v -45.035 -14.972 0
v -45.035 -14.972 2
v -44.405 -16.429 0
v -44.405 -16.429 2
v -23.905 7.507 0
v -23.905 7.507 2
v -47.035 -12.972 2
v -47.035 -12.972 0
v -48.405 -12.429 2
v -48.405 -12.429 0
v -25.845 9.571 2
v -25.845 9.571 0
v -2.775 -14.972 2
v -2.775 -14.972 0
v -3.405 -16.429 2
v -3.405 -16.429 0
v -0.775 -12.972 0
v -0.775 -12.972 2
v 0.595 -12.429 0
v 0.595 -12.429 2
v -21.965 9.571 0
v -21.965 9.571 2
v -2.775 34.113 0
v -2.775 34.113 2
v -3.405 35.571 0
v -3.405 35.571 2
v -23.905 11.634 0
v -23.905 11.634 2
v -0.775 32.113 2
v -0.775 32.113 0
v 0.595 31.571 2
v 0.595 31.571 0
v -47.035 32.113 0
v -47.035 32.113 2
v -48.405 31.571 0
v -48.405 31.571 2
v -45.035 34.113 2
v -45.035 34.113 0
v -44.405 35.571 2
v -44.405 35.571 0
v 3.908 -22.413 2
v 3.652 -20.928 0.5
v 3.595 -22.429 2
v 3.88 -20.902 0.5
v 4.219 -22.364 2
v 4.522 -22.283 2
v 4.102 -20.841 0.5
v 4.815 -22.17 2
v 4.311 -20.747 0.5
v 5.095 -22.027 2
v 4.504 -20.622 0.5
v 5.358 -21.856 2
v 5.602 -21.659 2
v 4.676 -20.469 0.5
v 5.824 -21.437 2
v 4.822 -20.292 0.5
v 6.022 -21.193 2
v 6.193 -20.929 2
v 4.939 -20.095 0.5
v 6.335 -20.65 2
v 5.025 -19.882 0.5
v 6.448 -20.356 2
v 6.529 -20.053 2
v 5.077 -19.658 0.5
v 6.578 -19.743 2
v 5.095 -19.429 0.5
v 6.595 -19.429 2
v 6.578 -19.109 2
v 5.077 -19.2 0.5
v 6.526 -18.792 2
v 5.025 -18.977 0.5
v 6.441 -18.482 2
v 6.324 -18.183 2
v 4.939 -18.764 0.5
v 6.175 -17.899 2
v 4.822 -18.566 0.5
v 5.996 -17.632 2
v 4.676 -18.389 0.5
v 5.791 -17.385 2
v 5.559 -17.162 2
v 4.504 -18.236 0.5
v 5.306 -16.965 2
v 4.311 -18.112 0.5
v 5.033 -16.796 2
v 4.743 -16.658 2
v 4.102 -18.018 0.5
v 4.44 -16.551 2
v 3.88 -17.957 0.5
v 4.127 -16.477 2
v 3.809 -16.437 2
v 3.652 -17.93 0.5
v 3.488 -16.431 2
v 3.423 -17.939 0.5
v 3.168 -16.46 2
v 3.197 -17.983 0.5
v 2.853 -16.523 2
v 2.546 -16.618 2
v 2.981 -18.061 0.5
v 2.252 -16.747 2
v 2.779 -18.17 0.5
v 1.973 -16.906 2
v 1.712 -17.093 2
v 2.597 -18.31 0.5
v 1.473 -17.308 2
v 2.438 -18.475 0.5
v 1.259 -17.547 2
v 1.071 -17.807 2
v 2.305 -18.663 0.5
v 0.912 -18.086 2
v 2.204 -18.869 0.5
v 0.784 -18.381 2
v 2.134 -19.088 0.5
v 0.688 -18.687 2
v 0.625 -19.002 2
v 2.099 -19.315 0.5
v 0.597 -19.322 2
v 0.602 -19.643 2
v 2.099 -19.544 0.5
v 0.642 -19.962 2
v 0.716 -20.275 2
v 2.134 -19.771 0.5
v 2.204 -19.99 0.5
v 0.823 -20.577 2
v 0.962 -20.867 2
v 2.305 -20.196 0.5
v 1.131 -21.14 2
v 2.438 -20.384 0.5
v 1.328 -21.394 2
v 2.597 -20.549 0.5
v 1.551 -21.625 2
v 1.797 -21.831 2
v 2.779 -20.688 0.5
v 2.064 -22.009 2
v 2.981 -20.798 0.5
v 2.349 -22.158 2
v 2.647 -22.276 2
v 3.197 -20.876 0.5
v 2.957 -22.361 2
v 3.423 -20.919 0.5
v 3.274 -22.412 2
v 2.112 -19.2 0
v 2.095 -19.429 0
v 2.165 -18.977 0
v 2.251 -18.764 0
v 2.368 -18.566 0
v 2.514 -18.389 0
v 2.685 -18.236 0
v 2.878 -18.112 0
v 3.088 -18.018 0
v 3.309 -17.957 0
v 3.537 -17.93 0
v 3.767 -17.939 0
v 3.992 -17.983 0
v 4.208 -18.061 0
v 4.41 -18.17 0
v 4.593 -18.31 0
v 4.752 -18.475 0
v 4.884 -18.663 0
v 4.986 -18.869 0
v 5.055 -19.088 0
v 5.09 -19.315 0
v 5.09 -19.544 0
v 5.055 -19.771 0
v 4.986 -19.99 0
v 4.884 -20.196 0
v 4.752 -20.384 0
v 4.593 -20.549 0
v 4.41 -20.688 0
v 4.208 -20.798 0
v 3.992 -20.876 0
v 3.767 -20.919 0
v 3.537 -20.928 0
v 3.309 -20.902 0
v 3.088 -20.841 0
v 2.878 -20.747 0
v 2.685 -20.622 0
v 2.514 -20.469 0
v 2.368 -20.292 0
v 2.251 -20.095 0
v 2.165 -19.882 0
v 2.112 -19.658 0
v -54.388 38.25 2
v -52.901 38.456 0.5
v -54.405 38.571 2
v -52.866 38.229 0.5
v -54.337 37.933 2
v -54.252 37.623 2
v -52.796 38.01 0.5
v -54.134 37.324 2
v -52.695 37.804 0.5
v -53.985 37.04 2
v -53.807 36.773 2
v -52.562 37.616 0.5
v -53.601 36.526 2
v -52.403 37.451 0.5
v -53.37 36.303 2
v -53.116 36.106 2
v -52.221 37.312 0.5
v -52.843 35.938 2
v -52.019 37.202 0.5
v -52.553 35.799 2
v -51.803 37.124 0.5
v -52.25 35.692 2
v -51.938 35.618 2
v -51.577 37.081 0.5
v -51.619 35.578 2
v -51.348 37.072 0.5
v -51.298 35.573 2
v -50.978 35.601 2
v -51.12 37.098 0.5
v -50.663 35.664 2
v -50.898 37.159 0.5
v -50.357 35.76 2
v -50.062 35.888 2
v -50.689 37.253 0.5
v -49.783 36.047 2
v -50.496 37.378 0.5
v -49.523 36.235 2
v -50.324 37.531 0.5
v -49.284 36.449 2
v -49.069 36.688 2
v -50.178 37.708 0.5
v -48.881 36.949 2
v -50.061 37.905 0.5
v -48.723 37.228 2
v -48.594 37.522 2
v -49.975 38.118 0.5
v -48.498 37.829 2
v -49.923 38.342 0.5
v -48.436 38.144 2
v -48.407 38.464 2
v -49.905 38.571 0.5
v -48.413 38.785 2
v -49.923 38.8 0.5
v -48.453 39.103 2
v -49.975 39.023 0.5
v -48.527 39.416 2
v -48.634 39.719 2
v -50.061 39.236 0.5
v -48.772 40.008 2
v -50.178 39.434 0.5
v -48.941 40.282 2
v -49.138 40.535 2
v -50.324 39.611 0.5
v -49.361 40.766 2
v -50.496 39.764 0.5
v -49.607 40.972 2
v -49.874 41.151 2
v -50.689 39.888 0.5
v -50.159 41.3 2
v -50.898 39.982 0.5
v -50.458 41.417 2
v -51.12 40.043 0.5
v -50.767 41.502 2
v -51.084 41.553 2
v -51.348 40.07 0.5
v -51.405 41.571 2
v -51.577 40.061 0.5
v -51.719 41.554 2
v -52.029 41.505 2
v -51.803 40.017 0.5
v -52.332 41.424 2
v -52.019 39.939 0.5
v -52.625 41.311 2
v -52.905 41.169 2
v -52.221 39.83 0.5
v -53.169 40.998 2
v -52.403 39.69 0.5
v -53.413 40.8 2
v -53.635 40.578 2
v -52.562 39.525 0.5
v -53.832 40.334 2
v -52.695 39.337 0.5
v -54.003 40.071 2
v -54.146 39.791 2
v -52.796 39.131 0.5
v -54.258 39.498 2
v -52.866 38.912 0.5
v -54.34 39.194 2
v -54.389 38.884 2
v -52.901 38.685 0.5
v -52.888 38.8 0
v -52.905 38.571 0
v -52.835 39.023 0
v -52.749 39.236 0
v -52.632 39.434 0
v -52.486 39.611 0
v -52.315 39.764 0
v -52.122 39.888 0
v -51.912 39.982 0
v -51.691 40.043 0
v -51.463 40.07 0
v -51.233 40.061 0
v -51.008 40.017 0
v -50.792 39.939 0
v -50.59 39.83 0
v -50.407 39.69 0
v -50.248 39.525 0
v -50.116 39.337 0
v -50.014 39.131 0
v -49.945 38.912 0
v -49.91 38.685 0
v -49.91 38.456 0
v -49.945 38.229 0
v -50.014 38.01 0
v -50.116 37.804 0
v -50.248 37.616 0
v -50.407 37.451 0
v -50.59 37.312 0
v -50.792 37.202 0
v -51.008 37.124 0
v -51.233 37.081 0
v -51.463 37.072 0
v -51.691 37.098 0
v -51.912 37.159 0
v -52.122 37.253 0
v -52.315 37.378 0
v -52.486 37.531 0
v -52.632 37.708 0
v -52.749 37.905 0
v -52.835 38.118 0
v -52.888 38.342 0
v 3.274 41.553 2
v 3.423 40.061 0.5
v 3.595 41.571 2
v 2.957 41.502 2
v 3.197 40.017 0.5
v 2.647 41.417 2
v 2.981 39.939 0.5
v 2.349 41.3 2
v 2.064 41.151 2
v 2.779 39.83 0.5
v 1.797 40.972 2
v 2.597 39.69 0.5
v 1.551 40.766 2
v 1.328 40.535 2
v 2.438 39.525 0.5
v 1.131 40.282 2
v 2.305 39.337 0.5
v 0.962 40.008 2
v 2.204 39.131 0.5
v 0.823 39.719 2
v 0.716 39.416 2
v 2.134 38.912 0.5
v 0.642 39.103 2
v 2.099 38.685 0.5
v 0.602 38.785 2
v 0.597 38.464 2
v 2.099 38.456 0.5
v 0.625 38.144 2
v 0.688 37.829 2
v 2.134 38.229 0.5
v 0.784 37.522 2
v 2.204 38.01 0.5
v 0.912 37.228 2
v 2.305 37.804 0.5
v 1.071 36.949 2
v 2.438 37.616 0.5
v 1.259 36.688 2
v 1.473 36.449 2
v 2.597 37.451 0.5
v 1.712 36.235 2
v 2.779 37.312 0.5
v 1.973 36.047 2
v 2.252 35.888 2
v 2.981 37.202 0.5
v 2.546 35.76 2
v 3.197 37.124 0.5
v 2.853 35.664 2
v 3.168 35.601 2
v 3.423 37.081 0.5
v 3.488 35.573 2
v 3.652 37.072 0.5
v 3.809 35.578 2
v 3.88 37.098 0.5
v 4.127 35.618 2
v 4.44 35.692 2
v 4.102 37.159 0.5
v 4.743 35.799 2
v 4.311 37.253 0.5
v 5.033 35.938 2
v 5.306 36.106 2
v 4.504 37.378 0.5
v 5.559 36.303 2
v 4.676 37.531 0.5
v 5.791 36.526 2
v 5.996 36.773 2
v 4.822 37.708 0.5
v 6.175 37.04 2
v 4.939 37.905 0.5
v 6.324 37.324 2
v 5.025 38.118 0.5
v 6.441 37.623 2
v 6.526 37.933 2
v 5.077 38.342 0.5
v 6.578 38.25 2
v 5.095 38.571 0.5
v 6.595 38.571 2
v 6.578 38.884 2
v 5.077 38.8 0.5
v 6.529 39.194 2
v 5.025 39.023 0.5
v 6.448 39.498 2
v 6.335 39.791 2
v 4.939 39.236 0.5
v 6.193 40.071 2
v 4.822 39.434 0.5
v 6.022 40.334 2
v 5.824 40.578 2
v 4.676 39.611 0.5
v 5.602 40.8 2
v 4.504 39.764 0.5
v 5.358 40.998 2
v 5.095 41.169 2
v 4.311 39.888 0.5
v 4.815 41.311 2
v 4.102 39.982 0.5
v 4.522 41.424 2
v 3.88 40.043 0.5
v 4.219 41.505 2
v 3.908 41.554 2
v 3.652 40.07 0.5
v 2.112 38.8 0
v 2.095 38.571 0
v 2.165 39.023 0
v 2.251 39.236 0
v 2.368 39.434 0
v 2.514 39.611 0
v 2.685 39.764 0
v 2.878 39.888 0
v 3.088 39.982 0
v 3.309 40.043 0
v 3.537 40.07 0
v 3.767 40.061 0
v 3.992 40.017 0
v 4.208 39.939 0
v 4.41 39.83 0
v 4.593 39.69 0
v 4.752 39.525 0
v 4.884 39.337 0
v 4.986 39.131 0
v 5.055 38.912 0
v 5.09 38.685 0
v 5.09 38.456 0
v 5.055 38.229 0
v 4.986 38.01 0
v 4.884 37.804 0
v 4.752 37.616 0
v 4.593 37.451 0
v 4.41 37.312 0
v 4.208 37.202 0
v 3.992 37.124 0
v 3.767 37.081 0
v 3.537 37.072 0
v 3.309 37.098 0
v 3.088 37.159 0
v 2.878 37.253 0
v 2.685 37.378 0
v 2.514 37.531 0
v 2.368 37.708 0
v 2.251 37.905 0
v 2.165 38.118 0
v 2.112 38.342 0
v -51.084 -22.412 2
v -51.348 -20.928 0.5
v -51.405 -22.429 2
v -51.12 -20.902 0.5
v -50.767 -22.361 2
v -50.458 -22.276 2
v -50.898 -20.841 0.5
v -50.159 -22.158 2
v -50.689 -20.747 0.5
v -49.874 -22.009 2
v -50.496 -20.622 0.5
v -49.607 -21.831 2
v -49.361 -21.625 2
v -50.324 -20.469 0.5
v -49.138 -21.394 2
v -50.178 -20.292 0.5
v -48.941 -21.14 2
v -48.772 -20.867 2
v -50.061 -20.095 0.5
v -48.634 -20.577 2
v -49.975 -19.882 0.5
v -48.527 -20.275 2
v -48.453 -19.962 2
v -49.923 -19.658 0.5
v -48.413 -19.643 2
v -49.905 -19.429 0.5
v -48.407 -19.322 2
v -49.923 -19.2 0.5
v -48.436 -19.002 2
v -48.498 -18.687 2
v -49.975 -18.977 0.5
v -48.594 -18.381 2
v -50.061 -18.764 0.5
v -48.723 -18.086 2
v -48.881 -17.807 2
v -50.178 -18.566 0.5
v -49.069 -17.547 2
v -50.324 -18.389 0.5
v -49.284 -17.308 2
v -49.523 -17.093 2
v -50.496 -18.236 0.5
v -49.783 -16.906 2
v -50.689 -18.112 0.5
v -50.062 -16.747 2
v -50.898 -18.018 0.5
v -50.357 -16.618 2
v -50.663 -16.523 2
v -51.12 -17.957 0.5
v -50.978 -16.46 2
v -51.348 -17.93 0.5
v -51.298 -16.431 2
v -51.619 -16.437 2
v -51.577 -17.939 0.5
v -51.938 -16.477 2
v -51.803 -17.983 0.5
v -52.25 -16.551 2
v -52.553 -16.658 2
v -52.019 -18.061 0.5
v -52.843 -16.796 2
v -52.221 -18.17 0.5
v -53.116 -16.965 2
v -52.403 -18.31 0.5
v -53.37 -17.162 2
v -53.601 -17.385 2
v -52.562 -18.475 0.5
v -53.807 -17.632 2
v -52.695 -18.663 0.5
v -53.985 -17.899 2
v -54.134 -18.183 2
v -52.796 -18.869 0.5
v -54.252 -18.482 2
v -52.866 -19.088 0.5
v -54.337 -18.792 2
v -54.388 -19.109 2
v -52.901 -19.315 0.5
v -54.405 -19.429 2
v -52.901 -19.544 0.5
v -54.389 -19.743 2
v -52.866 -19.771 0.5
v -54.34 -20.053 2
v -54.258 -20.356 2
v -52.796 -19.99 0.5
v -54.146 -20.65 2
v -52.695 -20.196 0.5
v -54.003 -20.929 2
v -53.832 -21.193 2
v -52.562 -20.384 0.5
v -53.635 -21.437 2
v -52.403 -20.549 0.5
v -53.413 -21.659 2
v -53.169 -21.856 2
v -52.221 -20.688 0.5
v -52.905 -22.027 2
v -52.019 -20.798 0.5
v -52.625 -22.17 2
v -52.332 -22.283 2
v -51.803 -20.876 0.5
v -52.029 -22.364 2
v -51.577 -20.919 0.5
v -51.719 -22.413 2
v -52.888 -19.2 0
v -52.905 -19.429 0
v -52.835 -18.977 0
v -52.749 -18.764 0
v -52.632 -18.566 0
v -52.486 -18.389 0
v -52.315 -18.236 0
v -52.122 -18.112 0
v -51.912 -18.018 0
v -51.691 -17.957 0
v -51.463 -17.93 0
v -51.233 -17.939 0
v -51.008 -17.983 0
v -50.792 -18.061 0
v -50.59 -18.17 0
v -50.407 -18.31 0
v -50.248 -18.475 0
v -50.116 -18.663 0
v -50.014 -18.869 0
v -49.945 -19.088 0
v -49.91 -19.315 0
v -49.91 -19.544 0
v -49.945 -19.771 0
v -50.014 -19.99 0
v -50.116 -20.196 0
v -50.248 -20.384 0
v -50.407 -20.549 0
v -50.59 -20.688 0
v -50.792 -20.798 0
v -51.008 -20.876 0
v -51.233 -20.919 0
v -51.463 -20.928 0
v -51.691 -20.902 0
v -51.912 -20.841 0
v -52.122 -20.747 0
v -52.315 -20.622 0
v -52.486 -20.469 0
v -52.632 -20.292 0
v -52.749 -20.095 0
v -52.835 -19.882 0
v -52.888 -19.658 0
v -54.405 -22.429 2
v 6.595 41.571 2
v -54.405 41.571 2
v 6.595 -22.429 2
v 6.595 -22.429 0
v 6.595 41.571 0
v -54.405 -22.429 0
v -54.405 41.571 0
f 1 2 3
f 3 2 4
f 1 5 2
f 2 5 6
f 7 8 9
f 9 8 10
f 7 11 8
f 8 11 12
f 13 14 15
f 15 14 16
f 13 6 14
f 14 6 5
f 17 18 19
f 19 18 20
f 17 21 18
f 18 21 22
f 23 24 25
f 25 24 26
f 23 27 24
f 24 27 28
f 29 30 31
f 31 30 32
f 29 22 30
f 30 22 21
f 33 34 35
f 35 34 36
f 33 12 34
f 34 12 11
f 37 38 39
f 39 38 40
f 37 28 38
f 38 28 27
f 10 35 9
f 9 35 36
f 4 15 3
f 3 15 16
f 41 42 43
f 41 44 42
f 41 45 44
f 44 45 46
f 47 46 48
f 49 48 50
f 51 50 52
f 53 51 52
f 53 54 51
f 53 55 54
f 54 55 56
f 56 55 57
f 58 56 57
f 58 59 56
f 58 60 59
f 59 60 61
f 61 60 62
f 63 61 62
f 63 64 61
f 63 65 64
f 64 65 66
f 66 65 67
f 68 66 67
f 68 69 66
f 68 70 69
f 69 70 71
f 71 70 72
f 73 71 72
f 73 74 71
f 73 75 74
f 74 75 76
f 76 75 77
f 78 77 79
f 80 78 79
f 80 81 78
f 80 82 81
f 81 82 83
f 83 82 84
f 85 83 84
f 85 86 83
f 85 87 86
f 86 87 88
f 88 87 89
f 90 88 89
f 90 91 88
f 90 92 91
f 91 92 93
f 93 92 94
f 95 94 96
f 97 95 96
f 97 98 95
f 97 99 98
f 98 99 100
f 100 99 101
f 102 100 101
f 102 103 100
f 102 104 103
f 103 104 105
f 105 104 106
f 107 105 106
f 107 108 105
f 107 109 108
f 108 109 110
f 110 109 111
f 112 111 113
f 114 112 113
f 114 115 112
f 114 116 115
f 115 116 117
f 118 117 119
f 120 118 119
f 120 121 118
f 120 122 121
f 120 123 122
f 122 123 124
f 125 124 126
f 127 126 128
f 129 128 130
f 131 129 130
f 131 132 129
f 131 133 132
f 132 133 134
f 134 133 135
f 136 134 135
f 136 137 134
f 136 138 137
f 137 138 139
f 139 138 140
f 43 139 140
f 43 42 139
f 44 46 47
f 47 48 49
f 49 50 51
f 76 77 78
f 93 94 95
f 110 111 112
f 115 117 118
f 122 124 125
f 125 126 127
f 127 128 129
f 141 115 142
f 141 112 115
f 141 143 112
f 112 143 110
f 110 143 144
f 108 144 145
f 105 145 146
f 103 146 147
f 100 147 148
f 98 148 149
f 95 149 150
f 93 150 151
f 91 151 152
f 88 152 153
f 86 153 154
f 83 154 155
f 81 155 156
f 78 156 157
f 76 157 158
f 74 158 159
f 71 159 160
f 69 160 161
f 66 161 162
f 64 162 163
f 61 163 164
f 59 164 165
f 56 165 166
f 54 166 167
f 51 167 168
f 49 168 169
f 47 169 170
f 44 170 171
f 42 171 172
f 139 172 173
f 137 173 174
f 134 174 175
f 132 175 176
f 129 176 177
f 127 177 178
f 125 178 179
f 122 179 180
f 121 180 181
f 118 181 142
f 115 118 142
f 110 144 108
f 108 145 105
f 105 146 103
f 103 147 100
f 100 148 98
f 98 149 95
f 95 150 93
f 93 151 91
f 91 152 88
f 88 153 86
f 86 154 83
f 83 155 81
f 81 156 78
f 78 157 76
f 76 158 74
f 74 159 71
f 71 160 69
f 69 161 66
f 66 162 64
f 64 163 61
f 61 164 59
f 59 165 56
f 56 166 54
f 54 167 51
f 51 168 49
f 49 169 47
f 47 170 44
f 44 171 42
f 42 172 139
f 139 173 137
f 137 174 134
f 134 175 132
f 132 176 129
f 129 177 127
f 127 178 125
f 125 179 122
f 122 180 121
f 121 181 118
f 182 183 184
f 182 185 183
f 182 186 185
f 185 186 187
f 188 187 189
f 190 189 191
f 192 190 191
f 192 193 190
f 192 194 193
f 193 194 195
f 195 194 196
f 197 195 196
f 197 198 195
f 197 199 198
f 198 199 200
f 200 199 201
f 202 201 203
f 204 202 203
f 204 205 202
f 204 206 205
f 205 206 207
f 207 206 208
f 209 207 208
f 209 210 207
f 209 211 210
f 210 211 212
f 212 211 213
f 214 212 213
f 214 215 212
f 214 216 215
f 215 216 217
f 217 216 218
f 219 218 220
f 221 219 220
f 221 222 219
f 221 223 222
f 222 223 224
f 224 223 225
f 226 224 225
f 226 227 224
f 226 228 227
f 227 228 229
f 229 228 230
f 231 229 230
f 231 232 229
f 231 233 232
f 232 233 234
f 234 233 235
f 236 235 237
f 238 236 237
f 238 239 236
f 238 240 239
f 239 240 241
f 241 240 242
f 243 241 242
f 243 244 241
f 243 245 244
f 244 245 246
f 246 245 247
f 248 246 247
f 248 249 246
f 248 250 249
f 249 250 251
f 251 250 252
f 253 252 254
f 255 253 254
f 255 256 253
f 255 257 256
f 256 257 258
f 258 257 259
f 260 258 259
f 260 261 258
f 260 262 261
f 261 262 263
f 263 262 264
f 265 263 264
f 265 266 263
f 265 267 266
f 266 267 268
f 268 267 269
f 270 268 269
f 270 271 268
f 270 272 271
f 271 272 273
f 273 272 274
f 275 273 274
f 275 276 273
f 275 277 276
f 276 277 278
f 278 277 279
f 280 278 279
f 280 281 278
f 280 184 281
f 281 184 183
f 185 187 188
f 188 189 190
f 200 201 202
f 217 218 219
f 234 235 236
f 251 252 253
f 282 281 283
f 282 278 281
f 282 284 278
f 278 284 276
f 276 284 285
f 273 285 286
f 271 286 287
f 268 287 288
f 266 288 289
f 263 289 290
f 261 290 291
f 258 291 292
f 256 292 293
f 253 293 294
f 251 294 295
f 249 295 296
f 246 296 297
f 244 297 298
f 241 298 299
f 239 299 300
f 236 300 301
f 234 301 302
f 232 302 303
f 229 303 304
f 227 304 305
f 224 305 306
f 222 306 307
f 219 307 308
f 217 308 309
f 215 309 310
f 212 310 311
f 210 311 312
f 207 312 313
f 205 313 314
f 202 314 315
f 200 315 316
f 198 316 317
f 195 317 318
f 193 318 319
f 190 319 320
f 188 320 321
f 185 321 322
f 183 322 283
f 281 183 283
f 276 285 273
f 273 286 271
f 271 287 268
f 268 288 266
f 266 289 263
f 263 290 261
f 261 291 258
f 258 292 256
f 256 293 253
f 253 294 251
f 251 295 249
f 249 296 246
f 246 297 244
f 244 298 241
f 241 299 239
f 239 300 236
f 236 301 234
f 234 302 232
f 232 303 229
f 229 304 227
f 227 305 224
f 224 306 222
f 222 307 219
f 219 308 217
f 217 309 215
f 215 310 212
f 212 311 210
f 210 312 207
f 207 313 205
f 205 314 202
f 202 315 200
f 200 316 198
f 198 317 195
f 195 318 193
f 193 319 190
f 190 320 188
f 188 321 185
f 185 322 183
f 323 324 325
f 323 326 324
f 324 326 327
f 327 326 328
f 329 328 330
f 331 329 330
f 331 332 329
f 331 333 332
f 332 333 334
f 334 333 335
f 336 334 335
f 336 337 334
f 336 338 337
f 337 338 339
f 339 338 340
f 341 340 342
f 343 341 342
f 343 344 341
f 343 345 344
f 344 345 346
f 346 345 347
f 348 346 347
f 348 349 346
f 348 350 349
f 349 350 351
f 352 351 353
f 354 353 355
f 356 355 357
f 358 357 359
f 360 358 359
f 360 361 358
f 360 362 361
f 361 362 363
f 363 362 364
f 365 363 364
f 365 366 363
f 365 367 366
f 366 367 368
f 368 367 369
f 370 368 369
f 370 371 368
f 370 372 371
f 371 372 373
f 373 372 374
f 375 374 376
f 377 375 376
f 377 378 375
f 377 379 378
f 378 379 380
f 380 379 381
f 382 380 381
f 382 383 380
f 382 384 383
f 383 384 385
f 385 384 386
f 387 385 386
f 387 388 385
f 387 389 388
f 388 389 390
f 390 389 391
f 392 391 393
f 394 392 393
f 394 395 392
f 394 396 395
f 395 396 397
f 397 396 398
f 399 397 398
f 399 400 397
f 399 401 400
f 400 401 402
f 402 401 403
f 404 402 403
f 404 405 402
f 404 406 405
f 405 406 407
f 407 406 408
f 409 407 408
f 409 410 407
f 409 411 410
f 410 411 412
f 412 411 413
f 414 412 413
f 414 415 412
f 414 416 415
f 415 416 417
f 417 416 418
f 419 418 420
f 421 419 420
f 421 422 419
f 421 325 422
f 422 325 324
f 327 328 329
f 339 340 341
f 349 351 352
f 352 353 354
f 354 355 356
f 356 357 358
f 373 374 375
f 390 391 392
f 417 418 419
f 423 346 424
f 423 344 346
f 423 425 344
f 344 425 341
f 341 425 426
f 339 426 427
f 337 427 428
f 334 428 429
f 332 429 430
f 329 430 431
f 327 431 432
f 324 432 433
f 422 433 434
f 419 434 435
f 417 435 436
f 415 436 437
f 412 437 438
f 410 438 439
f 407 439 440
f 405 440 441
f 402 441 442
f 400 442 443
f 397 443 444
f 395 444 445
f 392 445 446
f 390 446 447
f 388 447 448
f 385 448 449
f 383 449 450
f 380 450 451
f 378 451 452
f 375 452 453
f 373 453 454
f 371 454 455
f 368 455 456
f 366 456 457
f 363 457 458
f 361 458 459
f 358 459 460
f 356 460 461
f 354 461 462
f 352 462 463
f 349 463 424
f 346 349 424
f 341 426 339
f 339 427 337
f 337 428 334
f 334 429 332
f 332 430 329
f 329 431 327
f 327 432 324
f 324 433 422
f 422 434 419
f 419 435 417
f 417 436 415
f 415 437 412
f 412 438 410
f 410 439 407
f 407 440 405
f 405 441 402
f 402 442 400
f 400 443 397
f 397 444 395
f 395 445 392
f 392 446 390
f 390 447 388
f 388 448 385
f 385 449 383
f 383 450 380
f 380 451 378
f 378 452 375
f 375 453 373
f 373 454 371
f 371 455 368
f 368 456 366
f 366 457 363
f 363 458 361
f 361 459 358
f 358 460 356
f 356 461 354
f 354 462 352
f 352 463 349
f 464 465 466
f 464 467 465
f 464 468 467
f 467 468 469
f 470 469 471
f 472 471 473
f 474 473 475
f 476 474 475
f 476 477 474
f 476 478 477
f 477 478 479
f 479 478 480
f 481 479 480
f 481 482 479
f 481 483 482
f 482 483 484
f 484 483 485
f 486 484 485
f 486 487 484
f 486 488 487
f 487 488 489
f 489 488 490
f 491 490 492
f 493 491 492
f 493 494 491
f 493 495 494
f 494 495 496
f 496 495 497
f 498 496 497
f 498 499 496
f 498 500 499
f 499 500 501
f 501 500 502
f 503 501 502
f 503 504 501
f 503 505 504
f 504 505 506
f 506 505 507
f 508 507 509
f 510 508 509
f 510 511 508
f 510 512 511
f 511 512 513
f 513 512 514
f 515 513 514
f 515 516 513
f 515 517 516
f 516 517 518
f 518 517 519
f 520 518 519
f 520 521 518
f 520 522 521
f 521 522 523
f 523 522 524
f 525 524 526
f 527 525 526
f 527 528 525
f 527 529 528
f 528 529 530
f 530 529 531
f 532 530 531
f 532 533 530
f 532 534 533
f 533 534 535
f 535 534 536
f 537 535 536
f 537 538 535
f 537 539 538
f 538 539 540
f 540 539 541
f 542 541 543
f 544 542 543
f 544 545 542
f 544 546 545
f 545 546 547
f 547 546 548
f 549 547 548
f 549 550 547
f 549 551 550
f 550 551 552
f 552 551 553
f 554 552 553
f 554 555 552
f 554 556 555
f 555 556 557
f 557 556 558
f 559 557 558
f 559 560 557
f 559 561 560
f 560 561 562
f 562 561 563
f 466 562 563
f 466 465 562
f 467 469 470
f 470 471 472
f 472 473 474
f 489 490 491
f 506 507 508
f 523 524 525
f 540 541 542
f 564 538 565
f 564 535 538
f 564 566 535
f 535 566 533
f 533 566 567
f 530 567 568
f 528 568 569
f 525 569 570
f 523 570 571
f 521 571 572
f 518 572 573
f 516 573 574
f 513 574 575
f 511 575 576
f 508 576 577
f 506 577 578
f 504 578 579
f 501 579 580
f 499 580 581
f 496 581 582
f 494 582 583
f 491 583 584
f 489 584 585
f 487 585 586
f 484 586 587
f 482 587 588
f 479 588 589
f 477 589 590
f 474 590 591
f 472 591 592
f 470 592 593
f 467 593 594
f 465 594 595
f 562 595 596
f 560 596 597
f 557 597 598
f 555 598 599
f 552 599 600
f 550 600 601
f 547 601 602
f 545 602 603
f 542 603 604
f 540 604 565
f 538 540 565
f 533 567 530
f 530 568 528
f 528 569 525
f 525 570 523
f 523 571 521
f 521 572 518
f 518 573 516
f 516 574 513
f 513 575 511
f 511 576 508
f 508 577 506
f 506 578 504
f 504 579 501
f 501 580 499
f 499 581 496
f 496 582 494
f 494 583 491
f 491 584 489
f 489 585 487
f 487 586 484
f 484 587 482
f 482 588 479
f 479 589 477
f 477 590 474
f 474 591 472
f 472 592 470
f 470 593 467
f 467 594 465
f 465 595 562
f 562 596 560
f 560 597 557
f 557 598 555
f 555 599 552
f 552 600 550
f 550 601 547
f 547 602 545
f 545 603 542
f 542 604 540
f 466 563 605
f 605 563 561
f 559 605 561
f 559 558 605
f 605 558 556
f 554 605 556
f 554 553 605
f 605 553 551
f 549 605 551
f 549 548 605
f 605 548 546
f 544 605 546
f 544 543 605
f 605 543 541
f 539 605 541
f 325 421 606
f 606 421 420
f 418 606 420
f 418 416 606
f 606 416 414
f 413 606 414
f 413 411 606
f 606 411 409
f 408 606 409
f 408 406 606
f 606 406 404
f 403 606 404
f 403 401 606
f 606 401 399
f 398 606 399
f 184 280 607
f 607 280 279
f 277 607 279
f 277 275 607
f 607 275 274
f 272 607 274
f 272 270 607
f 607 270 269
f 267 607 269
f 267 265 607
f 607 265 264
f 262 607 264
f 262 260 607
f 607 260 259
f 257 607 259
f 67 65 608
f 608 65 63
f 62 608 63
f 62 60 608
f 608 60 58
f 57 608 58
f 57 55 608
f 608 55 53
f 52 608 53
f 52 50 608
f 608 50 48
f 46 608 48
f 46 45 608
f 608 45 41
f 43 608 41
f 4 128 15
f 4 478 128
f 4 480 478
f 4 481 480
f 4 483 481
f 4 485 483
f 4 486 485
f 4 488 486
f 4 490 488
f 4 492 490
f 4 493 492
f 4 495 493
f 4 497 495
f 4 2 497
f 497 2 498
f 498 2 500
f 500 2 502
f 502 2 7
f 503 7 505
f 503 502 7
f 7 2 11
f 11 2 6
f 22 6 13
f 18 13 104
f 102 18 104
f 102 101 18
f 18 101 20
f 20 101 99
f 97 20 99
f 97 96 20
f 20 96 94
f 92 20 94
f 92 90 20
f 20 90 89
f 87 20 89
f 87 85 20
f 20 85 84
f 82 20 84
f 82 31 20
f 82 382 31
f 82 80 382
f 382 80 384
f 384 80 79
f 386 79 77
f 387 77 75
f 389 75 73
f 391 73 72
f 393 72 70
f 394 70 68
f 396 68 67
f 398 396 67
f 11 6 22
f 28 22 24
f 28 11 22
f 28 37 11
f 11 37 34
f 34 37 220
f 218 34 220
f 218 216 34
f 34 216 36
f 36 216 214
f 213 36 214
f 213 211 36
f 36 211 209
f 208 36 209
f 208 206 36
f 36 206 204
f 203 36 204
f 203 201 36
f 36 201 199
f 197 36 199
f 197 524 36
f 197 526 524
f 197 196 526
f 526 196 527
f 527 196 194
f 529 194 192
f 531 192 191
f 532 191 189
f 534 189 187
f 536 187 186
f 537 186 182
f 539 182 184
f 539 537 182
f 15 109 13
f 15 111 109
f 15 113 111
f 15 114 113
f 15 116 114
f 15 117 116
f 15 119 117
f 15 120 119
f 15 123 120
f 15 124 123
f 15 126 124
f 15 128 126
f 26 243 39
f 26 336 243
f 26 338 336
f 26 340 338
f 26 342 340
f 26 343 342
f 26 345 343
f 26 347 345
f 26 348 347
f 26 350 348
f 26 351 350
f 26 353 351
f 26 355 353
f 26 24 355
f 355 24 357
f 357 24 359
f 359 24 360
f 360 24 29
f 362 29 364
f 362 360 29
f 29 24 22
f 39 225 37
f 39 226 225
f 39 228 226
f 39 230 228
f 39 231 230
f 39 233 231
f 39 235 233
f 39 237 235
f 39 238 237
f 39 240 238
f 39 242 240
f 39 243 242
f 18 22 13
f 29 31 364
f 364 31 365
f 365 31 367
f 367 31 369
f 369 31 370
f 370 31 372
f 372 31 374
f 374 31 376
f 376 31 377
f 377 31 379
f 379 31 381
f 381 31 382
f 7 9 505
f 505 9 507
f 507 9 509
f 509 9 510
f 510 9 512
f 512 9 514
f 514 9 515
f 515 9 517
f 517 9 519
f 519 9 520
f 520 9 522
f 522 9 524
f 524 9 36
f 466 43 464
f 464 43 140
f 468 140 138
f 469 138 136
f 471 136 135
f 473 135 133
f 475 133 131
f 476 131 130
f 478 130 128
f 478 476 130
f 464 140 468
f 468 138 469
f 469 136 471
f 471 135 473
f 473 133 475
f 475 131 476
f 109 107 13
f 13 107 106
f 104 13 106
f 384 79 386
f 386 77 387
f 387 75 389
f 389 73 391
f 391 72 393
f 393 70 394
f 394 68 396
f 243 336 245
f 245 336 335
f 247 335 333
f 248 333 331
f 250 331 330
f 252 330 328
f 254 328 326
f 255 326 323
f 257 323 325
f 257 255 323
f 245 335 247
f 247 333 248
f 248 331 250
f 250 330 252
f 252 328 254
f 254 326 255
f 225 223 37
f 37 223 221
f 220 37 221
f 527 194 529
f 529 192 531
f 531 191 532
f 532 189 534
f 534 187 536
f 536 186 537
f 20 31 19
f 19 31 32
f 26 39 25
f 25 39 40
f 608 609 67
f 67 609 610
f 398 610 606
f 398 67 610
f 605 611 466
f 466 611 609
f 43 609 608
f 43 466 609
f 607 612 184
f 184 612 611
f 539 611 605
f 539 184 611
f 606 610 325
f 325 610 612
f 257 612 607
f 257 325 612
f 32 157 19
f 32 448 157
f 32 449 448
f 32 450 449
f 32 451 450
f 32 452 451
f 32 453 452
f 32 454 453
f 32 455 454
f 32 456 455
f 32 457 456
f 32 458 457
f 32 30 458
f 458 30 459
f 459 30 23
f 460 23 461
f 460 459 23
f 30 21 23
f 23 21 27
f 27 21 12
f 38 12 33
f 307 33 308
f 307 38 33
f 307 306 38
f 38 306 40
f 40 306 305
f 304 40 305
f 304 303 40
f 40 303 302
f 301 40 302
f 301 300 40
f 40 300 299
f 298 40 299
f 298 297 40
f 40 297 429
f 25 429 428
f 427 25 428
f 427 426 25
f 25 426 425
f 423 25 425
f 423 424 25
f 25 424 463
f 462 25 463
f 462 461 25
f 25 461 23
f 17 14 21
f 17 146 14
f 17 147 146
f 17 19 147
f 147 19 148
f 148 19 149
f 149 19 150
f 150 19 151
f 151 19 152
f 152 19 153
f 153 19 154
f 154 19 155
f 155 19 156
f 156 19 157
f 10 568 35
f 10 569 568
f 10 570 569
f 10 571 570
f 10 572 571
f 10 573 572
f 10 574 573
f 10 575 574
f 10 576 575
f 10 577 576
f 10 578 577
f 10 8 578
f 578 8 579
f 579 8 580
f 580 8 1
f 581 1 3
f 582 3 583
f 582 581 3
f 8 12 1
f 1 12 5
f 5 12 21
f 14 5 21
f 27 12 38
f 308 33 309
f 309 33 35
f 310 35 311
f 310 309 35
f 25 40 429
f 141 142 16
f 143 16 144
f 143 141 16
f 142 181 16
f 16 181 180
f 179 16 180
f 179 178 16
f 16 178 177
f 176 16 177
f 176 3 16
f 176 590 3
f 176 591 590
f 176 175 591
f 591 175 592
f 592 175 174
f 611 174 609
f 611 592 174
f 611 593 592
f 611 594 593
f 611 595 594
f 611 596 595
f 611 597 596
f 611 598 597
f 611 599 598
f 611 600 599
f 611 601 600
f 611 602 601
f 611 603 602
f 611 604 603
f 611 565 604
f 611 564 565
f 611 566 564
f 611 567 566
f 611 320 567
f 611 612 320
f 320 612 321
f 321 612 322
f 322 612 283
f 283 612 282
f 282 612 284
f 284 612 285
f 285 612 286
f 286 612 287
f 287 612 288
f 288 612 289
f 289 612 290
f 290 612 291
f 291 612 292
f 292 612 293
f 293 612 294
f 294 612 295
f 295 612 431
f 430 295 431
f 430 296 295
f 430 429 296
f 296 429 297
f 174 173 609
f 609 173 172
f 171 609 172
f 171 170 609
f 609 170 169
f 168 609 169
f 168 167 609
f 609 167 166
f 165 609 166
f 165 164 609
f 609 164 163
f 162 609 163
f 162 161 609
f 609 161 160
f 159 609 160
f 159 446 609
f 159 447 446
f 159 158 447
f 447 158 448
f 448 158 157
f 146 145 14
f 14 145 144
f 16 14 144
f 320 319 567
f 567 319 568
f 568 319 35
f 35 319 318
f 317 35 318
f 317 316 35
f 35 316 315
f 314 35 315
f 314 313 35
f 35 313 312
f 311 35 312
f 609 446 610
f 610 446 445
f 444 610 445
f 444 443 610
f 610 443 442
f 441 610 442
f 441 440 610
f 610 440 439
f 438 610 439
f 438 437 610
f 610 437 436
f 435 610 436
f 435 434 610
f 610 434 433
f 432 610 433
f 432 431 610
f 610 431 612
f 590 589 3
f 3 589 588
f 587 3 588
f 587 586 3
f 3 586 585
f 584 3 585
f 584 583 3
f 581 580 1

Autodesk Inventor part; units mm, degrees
ref_plane "YZ Plane" through (0, 0, 0) normal (1, 0, 0) x (0, 1, 0)
ref_plane "XZ Plane" through (0, 0, 0) normal (0, 1, 0) x (-1, 0, 0)
ref_plane "XY Plane" through (0, 0, 0) normal (0, 0, 1) x (1, 0, 0)
sketch "Sketch1" plane through (0, 0, 0) normal (0, 0, 1) x (1, 0, 0)
  line L0 (-51.4052, 38.5707) -> (3.5948, 38.5707)
  line L1 (3.5948, 38.5707) -> (3.5948, -19.4293)
  line L2 (3.5948, -19.4293) -> (-51.4052, -19.4293)
  line L3 (-51.4052, -19.4293) -> (-51.4052, 38.5707)
  line L4 (-54.4052, 41.5707) -> (6.5948, 41.5707)
  line L5 (6.5948, 41.5707) -> (6.5948, -22.4293)
  line L6 (6.5948, -22.4293) -> (-54.4052, -22.4293)
  line L7 (-54.4052, -22.4293) -> (-54.4052, 41.5707)
  line L8 (-48.4052, 35.5707) -> (0.5948, 35.5707)
  line L9 (0.5948, 35.5707) -> (0.5948, -16.4293)
  line L10 (0.5948, -16.4293) -> (-48.4052, -16.4293)
  line L11 (-48.4052, -16.4293) -> (-48.4052, 35.5707)
  point P0 (0, 0)
  dimension "d0" = 55
  dimension "d1" = 58
  dimension "d2" = 3
  dimension "d3" = 3
  dimension "d4" = 3
  dimension "d5" = 3
  dimension "d6" = 3
  dimension "d7" = 3
  dimension "d8" = 3
  dimension "d9" = 3
extrude "Extrusion1" add sketch "Sketch1" along normal blind 2 contours L0 L1 L2 L3 | L4 L5 L6 L7
sketch "Sketch2" plane through (0, 0, 2) normal (0, 0, 1) x (1, 0, 0)
  line L0 (-54.4052, 41.5707) -> (-54.4052, -22.4293) projected
  line L1 (6.5948, 41.5707) -> (-54.4052, 41.5707) projected
  line L2 (6.5948, 41.5707) -> (6.5948, -22.4293) projected
  line L3 (-54.4052, -22.4293) -> (6.5948, -22.4293) projected
  point P0 (0, 0)
  point P1 (-51.4052, 38.5707)
  point P2 (3.5948, 38.5707)
  point P3 (3.5948, -19.4293)
  point P4 (-51.4052, -19.4293)
  dimension "d12" = 3
  dimension "d13" = 3
  dimension "d14" = 3
  dimension "d15" = 3
  dimension "d16" = 3
  dimension "d17" = 3
  dimension "d18" = 3
  dimension "d19" = 3
hole "Hole1" at (-51.4052, 38.5707, 2) at (3.5948, 38.5707, 2) at (3.5948, -19.4293, 2) at (-51.4052, -19.4293, 2) direction (0, 0, -1) diameter 3 depth 8 tip angle 118 countersink diameter 6 countersink angle 90
sketch "Sketch3" plane through (0, 0, 2) normal (0, 0, 1) x (1, 0, 0)
  line L0 (-48.4052, -16.4293) -> (-48.4052, 35.5707) projected
  line L1 (0.5948, 35.5707) -> (-48.4052, 35.5707) projected
  line L2 (0.5948, 35.5707) -> (0.5948, -16.4293) projected
  line L3 (-48.4052, -16.4293) -> (0.5948, -16.4293) projected
  line L4 (-48.4052, 33.5707) -> (-1.4052, -16.4293)
  line L5 (-1.4052, -16.4293) -> (0.5948, -16.4293)
  line L6 (0.5948, -16.4293) -> (0.5948, -14.4293)
  line L7 (0.5948, -14.4293) -> (-46.4052, 35.5707)
  line L8 (-48.4052, 35.5707) -> (-46.4052, 35.5707)
  line L9 (-48.4052, 35.5707) -> (-48.4052, 33.5707)
  line L10 (-48.4052, -14.4293) -> (-1.4052, 35.5707)
  line L11 (-1.4052, 35.5707) -> (0.5948, 35.5707)
  line L12 (0.5948, 33.5707) -> (-46.4052, -16.4293)
  line L13 (-46.4052, -16.4293) -> (-48.4052, -16.4293)
  line L14 (-48.4052, -16.4293) -> (-48.4052, -14.4293)
  point P0 (0, 0)
  point P1 (-46.4052, -16.4293)
  dimension "d27" = 2
  dimension "d28" = 2
  dimension "d29" = 2
  dimension "d30" = 2
  dimension "d31" = 2
  dimension "d32" = 2
  dimension "d33" = 2
  dimension "d34" = 2
extrude "Extrusion2" add sketch "Sketch3" against normal blind 2 contours L0 L10 L4 L12 L3 | L0 L1 L7 L10 L4 | L10 L7 L12 L4 | L4 L12 L7 L2 L3 | L10 L1 L2 L12 L7
chamfer "Chamfer1" distance 2 angle 45 8 edges at (-46.4052, 35.5707, 1) (-48.4052, 33.5707, 1) (0.5948, 33.5707, 1) (-1.4052, 35.5707, 1) (0.5948, -14.4293, 1) (-1.4052, -16.4293, 1) (-48.4052, -14.4293, 1) (-46.4052, -16.4293, 1)
properties part number "Mounting Plate"
